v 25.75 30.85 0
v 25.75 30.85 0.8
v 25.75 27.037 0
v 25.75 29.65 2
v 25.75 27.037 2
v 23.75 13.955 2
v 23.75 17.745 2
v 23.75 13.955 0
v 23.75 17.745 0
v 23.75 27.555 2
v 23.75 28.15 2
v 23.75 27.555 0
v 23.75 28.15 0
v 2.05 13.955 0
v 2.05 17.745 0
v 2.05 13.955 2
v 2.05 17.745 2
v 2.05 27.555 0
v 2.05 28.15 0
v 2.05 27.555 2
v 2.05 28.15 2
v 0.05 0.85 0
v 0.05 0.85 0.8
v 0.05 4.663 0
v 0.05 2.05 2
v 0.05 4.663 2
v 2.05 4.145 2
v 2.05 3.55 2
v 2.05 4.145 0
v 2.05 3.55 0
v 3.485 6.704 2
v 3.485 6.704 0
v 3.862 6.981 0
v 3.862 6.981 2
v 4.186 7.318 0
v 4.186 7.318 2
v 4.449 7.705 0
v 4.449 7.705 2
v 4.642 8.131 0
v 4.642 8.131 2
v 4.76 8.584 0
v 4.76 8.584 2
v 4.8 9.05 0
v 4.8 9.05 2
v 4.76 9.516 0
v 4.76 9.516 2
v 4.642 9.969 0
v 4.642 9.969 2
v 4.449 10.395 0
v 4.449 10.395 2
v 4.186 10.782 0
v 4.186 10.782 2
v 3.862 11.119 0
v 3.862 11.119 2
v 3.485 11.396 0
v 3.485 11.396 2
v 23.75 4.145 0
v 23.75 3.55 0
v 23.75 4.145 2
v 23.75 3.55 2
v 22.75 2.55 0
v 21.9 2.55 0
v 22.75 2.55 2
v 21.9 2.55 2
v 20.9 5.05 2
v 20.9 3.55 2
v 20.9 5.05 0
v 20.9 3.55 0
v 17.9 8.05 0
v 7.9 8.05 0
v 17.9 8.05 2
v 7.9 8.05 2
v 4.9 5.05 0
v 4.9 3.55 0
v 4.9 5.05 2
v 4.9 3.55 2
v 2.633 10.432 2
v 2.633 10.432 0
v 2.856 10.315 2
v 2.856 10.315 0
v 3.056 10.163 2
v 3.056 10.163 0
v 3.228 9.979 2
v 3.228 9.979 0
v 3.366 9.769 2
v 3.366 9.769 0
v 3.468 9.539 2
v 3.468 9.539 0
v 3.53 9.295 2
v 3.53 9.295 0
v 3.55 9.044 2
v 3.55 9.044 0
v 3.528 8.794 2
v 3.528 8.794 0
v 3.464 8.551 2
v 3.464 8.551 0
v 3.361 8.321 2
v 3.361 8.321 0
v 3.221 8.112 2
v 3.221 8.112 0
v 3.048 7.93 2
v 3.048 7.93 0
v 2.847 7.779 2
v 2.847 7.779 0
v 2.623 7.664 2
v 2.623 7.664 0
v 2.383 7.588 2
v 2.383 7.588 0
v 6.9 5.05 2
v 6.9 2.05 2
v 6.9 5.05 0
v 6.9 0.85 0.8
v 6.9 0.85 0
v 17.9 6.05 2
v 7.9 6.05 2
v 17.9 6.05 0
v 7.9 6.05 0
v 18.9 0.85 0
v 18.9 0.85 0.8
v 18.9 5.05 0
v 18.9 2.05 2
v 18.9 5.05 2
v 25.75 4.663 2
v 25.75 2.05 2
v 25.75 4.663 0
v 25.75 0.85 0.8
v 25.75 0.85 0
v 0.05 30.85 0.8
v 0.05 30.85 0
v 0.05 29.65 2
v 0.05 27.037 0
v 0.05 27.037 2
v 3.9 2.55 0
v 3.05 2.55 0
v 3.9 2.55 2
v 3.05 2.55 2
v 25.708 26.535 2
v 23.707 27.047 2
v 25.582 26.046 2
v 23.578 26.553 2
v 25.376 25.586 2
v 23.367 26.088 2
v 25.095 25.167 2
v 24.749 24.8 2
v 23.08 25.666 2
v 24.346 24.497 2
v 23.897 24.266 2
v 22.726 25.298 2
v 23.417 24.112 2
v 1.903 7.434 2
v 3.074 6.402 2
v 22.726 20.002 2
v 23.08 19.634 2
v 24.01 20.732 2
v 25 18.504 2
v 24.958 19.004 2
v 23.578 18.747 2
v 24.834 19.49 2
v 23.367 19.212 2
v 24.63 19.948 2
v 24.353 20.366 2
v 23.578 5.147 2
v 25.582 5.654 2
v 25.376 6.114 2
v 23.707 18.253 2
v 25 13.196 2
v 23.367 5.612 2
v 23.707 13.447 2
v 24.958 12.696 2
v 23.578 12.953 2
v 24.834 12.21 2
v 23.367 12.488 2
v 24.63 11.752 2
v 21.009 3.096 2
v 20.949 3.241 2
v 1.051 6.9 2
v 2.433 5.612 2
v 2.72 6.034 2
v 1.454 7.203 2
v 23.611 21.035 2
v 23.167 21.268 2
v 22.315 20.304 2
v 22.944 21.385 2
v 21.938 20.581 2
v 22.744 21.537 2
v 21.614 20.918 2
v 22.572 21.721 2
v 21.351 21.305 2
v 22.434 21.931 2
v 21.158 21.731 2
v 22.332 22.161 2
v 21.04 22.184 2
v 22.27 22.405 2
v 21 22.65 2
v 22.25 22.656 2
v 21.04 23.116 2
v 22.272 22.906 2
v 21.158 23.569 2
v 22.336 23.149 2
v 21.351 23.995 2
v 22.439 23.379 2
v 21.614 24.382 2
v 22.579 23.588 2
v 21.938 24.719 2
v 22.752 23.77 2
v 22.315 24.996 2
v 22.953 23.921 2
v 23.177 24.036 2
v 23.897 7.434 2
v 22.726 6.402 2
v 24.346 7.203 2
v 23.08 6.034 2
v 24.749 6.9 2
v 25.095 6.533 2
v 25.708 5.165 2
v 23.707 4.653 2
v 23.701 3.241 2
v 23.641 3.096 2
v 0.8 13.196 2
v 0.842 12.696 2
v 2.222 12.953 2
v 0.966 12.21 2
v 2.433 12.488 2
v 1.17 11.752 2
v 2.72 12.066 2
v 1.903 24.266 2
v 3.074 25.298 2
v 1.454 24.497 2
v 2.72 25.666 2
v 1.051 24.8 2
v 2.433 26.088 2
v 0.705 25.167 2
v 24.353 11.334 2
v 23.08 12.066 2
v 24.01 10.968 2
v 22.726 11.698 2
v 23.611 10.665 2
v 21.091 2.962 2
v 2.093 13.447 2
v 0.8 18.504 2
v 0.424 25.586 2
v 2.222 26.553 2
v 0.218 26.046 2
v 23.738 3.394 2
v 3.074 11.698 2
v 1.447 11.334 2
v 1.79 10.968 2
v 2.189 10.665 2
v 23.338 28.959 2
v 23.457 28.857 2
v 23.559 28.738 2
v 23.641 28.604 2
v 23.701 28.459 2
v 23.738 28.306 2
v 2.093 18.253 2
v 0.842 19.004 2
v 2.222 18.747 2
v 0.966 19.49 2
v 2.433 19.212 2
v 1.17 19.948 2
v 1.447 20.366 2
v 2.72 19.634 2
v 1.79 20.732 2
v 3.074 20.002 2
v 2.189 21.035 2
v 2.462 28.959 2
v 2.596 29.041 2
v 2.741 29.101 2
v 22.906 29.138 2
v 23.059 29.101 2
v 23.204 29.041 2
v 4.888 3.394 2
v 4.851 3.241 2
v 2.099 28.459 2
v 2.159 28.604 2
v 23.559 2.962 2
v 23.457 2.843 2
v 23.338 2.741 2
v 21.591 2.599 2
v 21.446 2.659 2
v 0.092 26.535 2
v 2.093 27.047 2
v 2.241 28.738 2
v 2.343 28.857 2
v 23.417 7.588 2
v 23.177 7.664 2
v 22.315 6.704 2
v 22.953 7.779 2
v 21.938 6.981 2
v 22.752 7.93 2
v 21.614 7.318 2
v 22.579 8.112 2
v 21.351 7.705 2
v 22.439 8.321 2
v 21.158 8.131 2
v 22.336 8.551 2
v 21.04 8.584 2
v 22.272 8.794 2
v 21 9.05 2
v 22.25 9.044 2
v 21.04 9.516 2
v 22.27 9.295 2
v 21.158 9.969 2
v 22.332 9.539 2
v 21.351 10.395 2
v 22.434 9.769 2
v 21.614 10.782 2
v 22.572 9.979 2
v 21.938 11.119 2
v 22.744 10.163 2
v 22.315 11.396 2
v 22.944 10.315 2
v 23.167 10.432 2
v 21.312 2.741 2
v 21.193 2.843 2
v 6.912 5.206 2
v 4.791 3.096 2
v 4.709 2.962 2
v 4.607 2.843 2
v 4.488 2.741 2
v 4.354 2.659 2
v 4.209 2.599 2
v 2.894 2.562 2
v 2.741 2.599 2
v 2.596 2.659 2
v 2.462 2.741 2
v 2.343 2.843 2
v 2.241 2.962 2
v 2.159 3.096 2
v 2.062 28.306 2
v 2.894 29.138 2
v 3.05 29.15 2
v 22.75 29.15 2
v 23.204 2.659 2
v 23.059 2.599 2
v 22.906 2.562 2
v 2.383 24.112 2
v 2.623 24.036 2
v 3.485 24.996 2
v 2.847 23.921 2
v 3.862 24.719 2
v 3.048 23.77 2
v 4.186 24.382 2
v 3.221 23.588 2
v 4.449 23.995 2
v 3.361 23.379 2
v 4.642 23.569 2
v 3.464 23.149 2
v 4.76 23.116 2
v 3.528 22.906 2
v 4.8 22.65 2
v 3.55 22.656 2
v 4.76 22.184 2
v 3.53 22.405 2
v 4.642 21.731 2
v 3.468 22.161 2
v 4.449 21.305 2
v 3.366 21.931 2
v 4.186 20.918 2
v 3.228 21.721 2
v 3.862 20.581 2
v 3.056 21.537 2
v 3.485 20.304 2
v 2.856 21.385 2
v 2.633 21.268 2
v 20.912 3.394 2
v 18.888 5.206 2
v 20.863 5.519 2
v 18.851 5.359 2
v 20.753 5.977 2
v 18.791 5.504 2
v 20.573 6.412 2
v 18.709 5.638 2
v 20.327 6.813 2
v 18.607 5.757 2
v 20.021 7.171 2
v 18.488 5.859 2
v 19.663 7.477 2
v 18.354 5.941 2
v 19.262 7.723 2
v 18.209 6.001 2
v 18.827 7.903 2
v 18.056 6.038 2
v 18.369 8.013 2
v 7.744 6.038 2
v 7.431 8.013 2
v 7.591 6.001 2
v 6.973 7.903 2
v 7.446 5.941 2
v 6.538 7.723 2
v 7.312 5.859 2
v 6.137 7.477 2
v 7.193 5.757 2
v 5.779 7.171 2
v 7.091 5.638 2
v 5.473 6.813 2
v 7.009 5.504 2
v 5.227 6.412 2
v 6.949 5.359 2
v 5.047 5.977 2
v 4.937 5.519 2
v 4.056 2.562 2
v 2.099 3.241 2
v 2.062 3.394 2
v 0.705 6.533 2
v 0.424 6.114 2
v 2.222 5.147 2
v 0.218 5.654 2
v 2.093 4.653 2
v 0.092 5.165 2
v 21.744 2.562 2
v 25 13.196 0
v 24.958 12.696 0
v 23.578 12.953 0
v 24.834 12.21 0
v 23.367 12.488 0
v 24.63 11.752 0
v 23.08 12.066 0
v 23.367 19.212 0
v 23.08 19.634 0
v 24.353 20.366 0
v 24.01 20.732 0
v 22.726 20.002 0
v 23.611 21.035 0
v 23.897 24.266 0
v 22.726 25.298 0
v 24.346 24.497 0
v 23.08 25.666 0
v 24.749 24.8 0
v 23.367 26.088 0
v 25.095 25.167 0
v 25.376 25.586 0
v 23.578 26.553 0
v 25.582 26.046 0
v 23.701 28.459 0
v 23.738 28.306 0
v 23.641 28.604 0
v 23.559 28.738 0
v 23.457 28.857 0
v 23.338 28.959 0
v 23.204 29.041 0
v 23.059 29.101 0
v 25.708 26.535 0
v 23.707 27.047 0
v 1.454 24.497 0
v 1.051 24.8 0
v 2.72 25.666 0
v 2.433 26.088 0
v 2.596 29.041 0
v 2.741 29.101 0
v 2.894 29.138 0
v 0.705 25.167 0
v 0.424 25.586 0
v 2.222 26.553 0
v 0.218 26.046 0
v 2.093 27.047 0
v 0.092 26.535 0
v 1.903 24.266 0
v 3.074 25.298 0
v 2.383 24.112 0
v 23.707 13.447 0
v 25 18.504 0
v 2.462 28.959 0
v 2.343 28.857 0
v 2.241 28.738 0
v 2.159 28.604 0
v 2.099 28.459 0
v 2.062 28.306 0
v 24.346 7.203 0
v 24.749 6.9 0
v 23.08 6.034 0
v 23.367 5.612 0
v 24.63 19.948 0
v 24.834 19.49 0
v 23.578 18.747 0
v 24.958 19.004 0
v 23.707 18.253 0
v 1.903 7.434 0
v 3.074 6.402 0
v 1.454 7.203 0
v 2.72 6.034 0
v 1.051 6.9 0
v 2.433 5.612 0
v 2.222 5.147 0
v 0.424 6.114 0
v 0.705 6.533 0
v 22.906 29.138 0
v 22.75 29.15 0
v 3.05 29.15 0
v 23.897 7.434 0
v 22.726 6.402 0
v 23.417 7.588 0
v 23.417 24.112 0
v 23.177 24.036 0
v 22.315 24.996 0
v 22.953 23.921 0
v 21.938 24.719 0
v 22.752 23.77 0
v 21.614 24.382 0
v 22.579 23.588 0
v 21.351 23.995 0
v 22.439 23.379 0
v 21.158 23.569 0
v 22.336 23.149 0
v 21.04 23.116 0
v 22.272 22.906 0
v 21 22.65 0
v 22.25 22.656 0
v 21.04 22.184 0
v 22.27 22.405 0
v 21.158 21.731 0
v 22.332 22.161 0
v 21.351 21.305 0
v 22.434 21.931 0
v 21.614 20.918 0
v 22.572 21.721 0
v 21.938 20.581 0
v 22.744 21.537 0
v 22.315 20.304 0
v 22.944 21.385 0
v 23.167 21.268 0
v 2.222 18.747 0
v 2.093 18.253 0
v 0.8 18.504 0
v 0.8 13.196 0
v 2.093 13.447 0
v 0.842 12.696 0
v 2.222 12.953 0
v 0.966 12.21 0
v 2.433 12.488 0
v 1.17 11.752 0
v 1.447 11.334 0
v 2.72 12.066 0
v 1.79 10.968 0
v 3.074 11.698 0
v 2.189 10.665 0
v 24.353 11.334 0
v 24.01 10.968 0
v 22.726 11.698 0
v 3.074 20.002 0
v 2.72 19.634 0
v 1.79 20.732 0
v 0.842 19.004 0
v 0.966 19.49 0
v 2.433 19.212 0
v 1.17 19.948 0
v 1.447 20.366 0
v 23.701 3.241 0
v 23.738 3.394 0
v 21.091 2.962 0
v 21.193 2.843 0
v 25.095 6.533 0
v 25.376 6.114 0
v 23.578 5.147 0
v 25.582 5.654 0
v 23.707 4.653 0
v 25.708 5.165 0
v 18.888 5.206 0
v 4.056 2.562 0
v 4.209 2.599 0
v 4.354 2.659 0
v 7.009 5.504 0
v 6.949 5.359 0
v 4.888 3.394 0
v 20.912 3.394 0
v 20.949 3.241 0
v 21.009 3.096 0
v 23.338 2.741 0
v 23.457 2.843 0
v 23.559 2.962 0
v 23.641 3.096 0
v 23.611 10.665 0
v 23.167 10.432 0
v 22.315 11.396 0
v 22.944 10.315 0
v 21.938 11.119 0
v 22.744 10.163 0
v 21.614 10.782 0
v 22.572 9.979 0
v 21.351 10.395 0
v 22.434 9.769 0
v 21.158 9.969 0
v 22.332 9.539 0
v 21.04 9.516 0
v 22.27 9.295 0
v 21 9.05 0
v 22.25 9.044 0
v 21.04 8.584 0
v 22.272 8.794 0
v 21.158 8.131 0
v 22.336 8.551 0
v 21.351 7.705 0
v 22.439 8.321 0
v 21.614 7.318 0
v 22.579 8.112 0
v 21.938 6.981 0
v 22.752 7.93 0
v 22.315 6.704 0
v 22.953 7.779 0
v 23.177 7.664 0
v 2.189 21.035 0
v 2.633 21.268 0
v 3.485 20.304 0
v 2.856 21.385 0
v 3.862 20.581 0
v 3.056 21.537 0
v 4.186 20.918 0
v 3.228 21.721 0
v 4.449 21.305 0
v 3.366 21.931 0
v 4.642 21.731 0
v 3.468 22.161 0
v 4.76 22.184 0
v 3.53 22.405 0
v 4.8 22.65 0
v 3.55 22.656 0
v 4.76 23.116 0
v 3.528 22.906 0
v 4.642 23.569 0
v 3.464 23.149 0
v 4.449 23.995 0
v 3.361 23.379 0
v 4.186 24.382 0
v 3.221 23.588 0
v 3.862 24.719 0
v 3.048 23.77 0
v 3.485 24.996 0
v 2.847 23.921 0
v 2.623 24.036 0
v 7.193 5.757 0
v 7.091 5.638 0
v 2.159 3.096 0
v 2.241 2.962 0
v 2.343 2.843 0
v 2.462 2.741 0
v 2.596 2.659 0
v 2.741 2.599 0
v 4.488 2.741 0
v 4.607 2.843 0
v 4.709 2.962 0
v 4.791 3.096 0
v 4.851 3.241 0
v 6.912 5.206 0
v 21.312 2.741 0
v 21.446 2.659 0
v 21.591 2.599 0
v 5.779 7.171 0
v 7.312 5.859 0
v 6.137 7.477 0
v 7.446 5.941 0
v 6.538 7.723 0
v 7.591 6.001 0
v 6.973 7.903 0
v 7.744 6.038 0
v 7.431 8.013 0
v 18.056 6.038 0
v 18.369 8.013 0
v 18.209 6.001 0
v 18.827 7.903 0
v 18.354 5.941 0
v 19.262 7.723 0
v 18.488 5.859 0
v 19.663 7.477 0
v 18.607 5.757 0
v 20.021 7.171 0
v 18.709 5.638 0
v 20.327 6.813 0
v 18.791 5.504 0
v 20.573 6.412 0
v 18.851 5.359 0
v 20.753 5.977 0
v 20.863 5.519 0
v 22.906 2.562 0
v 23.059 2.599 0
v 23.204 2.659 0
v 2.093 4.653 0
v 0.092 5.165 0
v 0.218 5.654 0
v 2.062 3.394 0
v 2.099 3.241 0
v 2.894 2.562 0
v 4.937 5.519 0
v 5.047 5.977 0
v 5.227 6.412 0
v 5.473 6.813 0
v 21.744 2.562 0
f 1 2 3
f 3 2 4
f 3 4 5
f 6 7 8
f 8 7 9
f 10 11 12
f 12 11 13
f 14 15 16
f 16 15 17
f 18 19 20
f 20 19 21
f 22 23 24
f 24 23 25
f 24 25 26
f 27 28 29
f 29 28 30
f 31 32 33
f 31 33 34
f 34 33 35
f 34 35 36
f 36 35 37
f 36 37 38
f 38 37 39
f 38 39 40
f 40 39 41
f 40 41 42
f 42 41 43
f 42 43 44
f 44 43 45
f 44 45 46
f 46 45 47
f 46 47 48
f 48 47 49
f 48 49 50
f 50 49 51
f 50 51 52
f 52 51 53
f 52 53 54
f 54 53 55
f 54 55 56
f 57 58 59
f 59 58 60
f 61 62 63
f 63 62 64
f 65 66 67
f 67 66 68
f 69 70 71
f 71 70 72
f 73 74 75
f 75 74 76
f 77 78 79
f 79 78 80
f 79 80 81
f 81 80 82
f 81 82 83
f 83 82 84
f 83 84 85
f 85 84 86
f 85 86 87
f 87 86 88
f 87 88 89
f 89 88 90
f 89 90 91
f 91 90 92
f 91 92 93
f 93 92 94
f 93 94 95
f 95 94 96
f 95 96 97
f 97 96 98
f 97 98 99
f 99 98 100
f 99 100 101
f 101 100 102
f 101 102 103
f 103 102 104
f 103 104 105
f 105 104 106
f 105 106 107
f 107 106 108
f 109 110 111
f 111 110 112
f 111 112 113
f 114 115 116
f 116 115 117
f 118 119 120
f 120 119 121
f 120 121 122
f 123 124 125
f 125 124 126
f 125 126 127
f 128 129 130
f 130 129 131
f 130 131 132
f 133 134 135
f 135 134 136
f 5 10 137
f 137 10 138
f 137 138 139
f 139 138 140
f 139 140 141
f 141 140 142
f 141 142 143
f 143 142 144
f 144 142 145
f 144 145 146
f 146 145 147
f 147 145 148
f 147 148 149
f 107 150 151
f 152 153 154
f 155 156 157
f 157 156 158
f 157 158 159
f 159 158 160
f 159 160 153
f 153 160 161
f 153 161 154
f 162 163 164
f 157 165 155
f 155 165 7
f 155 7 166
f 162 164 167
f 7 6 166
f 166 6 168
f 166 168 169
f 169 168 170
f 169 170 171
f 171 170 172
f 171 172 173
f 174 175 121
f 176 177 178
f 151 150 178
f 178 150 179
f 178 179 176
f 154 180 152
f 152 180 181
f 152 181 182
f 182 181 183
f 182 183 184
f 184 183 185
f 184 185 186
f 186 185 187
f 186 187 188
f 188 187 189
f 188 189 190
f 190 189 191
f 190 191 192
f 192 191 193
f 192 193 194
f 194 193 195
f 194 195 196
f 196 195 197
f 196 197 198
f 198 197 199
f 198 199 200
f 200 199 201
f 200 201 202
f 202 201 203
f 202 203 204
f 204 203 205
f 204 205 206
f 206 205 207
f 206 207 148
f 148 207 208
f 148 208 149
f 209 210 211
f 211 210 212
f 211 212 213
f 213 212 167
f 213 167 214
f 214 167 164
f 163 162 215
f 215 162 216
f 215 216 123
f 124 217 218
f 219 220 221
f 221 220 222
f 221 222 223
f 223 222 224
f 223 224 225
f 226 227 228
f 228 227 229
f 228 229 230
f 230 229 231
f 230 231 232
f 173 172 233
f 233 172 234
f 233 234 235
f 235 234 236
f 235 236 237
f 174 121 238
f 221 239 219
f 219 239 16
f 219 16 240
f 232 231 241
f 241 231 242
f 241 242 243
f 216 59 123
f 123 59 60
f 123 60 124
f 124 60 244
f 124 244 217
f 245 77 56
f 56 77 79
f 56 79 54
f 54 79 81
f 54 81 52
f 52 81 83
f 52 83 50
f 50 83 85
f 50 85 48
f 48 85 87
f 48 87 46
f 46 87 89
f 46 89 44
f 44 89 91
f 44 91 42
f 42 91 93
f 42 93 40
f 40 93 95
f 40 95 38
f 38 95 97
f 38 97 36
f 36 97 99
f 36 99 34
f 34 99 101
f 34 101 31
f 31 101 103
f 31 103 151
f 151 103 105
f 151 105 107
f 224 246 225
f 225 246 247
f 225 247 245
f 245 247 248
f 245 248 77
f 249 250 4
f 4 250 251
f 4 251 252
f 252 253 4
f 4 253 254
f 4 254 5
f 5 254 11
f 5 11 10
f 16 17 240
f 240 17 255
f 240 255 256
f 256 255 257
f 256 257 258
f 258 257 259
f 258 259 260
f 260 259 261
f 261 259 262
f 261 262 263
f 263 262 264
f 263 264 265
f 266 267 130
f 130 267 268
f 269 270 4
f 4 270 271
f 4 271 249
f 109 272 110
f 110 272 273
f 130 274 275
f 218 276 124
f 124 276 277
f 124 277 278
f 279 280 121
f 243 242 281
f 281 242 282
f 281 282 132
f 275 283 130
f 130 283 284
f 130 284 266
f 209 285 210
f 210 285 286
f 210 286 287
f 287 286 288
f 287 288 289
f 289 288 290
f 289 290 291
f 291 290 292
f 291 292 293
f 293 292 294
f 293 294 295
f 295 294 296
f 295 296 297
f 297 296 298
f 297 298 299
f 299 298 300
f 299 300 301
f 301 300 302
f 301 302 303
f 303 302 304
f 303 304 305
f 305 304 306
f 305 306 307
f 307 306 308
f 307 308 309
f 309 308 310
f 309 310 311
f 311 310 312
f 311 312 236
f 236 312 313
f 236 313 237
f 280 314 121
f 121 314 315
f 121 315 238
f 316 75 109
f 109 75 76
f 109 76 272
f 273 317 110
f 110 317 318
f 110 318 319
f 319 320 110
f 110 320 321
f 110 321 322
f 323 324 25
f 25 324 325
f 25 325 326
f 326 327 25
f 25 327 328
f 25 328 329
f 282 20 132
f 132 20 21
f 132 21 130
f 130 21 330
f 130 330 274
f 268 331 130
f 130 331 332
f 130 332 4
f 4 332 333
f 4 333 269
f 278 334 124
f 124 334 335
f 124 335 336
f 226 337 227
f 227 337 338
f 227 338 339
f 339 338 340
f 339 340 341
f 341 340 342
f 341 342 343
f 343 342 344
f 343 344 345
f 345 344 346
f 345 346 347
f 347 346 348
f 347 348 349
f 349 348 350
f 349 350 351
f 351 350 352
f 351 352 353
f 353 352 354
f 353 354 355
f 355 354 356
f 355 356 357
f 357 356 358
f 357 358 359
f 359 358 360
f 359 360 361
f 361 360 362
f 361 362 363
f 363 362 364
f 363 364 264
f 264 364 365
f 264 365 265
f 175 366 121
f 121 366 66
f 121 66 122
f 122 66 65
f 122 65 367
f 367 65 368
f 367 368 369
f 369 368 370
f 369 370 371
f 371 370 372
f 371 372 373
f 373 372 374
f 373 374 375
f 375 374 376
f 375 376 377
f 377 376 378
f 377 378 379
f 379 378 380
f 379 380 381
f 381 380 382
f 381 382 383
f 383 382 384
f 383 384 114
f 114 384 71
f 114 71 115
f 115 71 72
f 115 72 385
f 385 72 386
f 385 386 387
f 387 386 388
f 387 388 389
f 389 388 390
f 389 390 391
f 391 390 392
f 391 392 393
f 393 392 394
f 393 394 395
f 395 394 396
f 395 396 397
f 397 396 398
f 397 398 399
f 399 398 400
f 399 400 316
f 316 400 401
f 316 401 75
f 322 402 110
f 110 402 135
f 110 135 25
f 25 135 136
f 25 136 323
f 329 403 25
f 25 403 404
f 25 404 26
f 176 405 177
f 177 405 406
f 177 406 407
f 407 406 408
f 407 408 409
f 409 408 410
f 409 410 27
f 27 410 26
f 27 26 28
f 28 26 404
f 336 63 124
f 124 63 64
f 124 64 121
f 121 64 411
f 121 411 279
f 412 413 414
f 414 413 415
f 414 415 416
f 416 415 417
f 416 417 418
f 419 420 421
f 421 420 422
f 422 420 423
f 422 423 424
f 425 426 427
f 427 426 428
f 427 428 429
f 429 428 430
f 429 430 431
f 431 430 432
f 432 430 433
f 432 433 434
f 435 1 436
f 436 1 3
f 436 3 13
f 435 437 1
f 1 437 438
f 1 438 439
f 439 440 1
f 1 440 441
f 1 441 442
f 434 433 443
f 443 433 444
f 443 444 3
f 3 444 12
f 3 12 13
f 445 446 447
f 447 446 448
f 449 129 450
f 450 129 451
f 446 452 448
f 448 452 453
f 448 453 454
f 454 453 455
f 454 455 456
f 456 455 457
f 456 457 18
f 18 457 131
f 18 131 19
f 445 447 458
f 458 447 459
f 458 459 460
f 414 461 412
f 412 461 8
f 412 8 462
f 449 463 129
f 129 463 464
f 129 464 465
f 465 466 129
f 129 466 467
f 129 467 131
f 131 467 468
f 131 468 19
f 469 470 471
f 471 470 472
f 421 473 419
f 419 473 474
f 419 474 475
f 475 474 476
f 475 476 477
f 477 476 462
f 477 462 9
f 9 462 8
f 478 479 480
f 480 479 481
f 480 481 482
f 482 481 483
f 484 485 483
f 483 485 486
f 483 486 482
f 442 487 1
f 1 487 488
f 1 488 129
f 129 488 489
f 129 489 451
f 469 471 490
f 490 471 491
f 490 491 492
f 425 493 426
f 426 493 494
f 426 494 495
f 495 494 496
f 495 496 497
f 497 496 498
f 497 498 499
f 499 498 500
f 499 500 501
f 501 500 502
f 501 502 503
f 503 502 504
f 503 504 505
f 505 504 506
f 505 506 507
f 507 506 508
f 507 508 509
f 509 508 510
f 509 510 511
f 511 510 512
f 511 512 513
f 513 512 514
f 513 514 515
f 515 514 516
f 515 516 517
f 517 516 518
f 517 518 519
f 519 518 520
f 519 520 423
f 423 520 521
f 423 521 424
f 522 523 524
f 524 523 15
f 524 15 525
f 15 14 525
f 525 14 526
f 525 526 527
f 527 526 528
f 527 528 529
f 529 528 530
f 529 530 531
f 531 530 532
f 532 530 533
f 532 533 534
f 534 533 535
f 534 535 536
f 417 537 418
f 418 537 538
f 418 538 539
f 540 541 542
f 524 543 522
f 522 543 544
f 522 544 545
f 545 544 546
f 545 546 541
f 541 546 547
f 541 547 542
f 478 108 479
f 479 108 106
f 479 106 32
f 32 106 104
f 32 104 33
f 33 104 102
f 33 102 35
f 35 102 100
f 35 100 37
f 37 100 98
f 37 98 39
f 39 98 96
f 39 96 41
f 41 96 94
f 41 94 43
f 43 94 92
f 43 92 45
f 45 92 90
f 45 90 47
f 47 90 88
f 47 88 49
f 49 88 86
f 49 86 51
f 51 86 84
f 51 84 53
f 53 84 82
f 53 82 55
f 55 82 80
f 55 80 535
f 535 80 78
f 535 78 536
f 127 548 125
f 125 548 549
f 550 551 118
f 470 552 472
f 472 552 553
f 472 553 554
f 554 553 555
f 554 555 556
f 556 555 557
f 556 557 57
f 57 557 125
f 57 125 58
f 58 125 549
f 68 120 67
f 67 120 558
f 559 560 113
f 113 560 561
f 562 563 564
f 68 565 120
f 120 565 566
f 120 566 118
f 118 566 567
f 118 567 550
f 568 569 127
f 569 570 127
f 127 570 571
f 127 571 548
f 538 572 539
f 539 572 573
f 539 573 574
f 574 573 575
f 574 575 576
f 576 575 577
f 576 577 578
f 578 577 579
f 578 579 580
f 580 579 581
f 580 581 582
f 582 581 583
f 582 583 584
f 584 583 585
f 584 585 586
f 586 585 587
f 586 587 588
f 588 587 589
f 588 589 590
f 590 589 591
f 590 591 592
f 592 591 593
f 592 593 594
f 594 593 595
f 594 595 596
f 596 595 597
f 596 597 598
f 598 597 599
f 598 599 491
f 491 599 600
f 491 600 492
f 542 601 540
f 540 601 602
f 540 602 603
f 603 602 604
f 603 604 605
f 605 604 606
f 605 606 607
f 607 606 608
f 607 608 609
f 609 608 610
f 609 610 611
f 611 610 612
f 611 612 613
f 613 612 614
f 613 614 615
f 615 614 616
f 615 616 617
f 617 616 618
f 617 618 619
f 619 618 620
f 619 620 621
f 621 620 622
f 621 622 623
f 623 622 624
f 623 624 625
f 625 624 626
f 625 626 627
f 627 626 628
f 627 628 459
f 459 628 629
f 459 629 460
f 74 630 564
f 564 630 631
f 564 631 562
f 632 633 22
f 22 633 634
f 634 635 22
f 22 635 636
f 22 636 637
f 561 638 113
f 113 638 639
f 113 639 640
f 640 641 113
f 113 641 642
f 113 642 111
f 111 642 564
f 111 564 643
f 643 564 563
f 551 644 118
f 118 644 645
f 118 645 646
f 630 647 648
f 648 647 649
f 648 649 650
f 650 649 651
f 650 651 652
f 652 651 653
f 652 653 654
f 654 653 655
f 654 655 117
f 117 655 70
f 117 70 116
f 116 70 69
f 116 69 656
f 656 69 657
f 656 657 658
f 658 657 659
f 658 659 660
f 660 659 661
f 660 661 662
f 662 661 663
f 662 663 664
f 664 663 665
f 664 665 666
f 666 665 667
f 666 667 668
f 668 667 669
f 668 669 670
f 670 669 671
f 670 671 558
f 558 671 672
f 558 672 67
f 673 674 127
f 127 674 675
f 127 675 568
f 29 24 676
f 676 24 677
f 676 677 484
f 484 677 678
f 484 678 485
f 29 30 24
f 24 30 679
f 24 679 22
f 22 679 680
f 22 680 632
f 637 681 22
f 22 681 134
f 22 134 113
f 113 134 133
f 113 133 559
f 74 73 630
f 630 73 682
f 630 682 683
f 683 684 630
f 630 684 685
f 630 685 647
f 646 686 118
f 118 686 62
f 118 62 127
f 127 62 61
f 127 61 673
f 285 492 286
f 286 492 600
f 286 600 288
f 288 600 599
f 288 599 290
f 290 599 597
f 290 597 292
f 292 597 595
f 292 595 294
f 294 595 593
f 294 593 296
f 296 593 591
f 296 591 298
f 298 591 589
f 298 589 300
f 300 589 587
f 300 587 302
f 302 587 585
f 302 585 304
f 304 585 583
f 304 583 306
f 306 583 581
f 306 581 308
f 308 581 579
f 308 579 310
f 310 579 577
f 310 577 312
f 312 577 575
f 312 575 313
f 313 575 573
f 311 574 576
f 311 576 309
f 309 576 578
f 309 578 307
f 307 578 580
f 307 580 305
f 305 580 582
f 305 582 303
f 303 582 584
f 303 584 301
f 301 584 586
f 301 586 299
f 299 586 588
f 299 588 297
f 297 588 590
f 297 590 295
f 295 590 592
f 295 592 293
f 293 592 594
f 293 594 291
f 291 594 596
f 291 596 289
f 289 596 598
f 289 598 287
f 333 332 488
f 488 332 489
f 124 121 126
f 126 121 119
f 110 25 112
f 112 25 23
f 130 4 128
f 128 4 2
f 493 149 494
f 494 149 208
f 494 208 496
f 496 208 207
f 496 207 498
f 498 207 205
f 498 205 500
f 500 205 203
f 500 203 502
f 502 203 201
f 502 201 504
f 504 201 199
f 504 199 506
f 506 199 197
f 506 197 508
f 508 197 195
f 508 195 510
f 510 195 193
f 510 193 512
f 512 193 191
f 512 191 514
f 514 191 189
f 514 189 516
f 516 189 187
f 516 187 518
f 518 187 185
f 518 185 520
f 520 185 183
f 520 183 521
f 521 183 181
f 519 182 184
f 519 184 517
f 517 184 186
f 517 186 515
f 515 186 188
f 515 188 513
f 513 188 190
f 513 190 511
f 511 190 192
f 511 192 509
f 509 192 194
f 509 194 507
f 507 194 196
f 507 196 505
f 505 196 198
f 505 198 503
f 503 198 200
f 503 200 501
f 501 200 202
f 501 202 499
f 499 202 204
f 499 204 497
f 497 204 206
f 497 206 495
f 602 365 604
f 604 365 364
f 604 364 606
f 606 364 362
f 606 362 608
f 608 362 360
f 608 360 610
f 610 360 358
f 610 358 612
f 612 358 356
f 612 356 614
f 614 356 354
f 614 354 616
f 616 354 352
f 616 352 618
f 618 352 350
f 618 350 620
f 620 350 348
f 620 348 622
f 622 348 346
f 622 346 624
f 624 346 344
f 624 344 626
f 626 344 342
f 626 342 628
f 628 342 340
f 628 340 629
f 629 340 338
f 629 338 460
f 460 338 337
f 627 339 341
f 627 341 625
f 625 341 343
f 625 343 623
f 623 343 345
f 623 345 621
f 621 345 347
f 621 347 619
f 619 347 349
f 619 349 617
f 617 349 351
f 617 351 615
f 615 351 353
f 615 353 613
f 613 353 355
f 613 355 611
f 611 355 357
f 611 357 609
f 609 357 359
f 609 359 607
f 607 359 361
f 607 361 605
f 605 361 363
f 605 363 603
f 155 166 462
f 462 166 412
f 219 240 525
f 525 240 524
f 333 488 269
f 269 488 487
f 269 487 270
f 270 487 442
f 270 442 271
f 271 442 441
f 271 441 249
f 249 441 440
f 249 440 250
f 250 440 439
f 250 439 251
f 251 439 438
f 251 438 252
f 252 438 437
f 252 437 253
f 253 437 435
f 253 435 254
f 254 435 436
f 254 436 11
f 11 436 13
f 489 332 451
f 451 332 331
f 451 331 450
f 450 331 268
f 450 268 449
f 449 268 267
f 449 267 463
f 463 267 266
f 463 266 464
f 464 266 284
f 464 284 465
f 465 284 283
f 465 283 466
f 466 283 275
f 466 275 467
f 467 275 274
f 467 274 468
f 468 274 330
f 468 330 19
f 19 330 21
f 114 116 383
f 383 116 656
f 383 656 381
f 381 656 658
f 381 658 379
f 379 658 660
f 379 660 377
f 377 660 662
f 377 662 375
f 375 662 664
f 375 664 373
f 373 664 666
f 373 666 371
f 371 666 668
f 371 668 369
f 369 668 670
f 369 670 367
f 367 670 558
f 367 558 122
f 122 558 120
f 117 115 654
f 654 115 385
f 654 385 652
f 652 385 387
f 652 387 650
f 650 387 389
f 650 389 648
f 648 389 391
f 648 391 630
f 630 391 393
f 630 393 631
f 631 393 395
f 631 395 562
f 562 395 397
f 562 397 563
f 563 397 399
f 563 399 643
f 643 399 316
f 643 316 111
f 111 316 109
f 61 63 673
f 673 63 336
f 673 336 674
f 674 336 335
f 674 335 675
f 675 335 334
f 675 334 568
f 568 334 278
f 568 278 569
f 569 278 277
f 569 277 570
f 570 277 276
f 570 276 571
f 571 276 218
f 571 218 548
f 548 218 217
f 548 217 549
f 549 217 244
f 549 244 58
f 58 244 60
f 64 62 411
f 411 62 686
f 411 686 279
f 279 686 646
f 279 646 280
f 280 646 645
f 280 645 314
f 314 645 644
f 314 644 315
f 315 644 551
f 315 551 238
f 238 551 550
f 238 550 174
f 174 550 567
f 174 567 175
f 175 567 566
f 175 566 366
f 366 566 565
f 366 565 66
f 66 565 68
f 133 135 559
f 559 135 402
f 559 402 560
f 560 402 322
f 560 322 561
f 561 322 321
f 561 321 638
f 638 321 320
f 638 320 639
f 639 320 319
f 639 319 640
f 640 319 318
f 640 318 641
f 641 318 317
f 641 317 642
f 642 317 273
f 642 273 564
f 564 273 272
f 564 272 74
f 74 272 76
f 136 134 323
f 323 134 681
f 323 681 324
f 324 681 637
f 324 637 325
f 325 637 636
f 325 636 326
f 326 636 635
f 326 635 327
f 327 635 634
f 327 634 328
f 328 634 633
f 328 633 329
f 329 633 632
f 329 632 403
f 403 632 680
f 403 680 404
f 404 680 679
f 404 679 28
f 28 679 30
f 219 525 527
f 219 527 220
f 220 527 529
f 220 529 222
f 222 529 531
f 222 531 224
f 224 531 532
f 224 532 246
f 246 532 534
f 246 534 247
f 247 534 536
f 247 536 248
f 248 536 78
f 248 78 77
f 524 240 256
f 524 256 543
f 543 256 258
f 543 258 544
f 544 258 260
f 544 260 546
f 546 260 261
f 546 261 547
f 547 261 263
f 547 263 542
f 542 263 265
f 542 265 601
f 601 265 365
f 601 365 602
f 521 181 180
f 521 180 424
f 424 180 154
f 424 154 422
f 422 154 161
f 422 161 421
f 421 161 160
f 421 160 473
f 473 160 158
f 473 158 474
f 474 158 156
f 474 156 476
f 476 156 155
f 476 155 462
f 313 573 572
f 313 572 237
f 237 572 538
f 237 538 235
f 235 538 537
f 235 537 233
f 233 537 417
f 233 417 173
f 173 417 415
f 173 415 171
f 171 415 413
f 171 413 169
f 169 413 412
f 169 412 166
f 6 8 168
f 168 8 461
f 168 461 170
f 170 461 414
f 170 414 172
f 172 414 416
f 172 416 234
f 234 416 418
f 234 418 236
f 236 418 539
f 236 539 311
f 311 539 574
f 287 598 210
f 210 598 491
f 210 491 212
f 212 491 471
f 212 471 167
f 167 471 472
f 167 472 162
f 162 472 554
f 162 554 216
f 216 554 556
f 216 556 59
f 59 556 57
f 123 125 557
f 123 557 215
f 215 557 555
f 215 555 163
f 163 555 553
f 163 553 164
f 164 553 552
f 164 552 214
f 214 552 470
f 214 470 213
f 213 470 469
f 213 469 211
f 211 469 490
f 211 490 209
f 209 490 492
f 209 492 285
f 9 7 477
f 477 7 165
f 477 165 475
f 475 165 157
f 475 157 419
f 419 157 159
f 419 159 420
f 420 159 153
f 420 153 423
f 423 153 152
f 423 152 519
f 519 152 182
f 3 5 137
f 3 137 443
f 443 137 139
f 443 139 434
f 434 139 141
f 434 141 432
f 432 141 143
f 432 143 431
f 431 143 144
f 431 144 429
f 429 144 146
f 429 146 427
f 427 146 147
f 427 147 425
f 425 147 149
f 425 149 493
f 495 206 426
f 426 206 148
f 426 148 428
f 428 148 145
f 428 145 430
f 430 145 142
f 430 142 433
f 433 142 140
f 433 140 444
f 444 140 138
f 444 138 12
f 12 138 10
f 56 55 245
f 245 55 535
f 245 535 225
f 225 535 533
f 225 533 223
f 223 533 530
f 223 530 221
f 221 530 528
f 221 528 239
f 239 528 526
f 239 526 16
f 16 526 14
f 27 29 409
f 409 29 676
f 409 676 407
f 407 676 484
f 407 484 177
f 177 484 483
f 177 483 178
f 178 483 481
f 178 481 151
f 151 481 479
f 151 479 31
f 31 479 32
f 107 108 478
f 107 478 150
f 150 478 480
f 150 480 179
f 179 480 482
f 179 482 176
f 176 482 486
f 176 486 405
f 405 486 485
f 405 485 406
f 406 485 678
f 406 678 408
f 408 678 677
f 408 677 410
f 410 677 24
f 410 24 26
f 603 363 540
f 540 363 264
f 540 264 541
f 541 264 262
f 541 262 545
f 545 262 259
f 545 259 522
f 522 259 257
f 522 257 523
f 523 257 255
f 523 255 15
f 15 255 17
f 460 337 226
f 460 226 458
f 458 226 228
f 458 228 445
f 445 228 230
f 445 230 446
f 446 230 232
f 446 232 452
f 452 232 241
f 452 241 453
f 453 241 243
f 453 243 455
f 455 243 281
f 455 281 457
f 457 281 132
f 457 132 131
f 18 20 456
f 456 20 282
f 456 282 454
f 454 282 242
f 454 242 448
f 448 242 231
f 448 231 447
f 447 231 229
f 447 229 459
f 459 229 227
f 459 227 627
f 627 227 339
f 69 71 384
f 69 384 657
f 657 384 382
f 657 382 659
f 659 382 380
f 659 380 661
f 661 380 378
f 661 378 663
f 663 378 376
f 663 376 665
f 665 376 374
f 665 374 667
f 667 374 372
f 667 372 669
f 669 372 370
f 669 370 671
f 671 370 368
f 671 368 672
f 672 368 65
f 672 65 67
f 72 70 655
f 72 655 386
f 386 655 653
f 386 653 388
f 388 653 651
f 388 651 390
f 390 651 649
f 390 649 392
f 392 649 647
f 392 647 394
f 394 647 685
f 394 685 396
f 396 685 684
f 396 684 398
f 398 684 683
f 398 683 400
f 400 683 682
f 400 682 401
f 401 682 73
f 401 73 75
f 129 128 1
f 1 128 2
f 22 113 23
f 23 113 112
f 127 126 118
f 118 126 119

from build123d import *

# Parameters (mm, degrees)
BOSS_EXTRUDE1_DEPTH  = 2
SKETCH3_W            = 21.7
SKETCH3_H            = 0.5
BOSS_EXTRUDE2_DEPTH  = 2
SKETCH2_W            = 2
SKETCH2_H            = 3
CUT_EXTRUDE1_DEPTH   = 2
CHAMFER1_SIZE        = 2
CHAMFER3_SIZE        = 2
BOSS_EXTRUDE3_DEPTH  = 2
SKETCH5_W            = 2
SKETCH5_H            = 3
CUT_EXTRUDE2_DEPTH   = 10
SKETCH8_W            = 0.75
SKETCH8_H            = 10.6
CUT_EXTRUDE5_DEPTH   = 41.850764987
FILLET2_R            = 1
FILLET3_R            = 3
FILLET4_R            = 3
CUT_EXTRUDE4_START   = 30.85
CUT_EXTRUDE4_DEPTH   = 0.8
CUT_EXTRUDE4_START_2 = 0.05
CUT_EXTRUDE4_2_DEPTH = 0.8


# Read off the part's stored shape, not the designer's step: Cut-Extrude4
with BuildPart() as part:
    # Sketch1 → Boss-Extrude1 (new body)
    with BuildSketch(Plane.XY):
        with BuildLine():
            ThreePointArc((2.05, 7.55), (3.55, 9.05), (2.05, 10.55))
            Line((2.05, 10.55), (0.05, 10.55))
            Line((0.05, 10.55), (0.05, 31.65))
            Line((0.05, 31.65), (25.75, 31.65))
            Line((25.75, 31.65), (25.75, 0.05))
            Line((25.75, 0.05), (18.9, 0.05))
            Line((18.9, 0.05), (18.9, 6.05))
            Line((18.9, 6.05), (6.9, 6.05))
            Line((6.9, 6.05), (6.9, 0.05))
            Line((6.9, 0.05), (0.05, 0.05))
            Line((0.05, 0.05), (0.05, 7.55))
            Line((0.05, 7.55), (2.05, 7.55))
        make_face()
        with BuildLine():
            Line((2.05, 2.55), (2.05, 6.3))
            ThreePointArc((2.05, 6.3), (4.8, 9.05), (2.05, 11.8))
            Line((2.05, 11.8), (2.05, 29.65))
            Line((2.05, 29.65), (23.75, 29.65))
            Line((23.75, 29.65), (23.75, 2.55))
            Line((23.75, 2.55), (20.9, 2.55))
            Line((20.9, 2.55), (20.9, 8.05))
            Line((20.9, 8.05), (4.9, 8.05))
            Line((4.9, 8.05), (4.9, 2.55))
            Line((4.9, 2.55), (2.05, 2.55))
        make_face(mode=Mode.SUBTRACT)
    boss_extrude1 = extrude(amount=BOSS_EXTRUDE1_DEPTH)

    # Mirror8: Boss-Extrude1 across plane
    add(boss_extrude1.mirror(Plane.ZY.offset(-12.9)))

    # Sketch3 → Boss-Extrude2 (add)
    with BuildSketch(Plane.XY.offset(2)):
        with Locations((12.9, 29.4)):
            Rectangle(SKETCH3_W, SKETCH3_H)
    extrude(amount=-BOSS_EXTRUDE2_DEPTH)

    # Sketch2 → Cut-Extrude1 (cut)
    with BuildSketch(Plane.XY.offset(2)):
        with Locations((1.05, 9.05)):
            Rectangle(SKETCH2_W, SKETCH2_H)
        with Locations((24.75, 9.05)):
            Rectangle(SKETCH2_W, SKETCH2_H)
    extrude(amount=-CUT_EXTRUDE1_DEPTH, mode=Mode.SUBTRACT)

    # Chamfer1
    chamfer1_edges = [part.edges().sort_by_distance(p)[0] for p in [
        (22.325, 0.05, 2),
        (3.475, 0.05, 2),
    ]]
    chamfer(chamfer1_edges, length=CHAMFER1_SIZE - 0.0001)  # a hair under: the kernel refuses the full size

    # Chamfer3
    chamfer3_edges = [part.edges().sort_by_distance(p)[0] for p in [
        (12.9, 31.65, 2),
    ]]
    chamfer(chamfer3_edges, length=CHAMFER3_SIZE - 0.0001)  # a hair under: the kernel refuses the full size

    # Sketch4 → Boss-Extrude3 (add)
    with BuildSketch(Plane.XY.offset(2)):
        with BuildLine():
            ThreePointArc((2.05, 19.9), (4.8, 22.65), (2.05, 25.4))
            Line((2.05, 25.4), (2.05, 24.15))
            ThreePointArc((2.05, 24.15), (3.55, 22.65), (2.05, 21.15))
            Line((2.05, 21.15), (2.05, 19.9))
        make_face()
        with BuildLine():
            Line((23.75, 24.15), (23.75, 25.4))
            ThreePointArc((23.75, 25.4), (21, 22.65), (23.75, 19.9))
            Line((23.75, 19.9), (23.75, 21.15))
            ThreePointArc((23.75, 21.15), (22.25, 22.65), (23.75, 24.15))
        make_face()
    extrude(amount=-BOSS_EXTRUDE3_DEPTH)

    # Sketch5 → Cut-Extrude2 (cut)
    with BuildSketch(Plane.XY.offset(2)):
        with Locations((1.05, 22.65)):
            Rectangle(SKETCH5_W, SKETCH5_H)
        with Locations((24.75, 22.65)):
            Rectangle(SKETCH5_W, SKETCH5_H)
    extrude(amount=-CUT_EXTRUDE2_DEPTH, mode=Mode.SUBTRACT)

    # Sketch8 → Cut-Extrude5 (cut, through all)
    with BuildSketch(Plane.XY.offset(2)):
        with Locations((25.375, 15.85)):
            Rectangle(SKETCH8_W, SKETCH8_H)
        with Locations((0.425, 15.85)):
            Rectangle(SKETCH8_W, SKETCH8_H)
    extrude(amount=-CUT_EXTRUDE5_DEPTH, mode=Mode.SUBTRACT)

    # Fillet2
    fillet2_edges = [part.edges().sort_by_distance(p)[0] for p in [
        (2.05, 29.15, 1),
        (23.75, 29.15, 1),
        (2.05, 2.55, 1),
        (4.9, 2.55, 1),
        (20.9, 2.55, 1),
        (23.75, 2.55, 1),
        (18.9, 6.05, 1),
        (6.9, 6.05, 1),
    ]]
    fillet(fillet2_edges, radius=FILLET2_R)

    # Fillet3
    fillet3_edges = [part.edges().sort_by_distance(p)[0] for p in [
        (23.75, 6.3, 1),
        (23.75, 11.8, 1),
        (25.75, 7.55, 1),
        (23.75, 25.4, 1),
        (23.75, 19.9, 1),
        (25.75, 24.15, 1),
        (2.05, 11.8, 1),
        (2.05, 6.3, 1),
        (0.05, 7.55, 1),
        (2.05, 19.9, 1),
        (2.05, 25.4, 1),
        (0.05, 24.15, 1),
        (0.8, 10.55, 1),
        (0.8, 21.15, 1),
        (25, 21.15, 1),
        (25, 10.55, 1),
    ]]
    fillet(fillet3_edges, radius=FILLET3_R)

    # Fillet4
    fillet4_edges = [part.edges().sort_by_distance(p)[0] for p in [
        (4.9, 8.05, 1),
        (20.9, 8.05, 1),
    ]]
    fillet(fillet4_edges, radius=FILLET4_R)

    # Cut-Extrude4 outline → Cut-Extrude4 (cut)
    with BuildSketch(Plane(origin=(0, 0, 0), x_dir=(1, 0, 0), z_dir=(0, 1, 0)).offset(CUT_EXTRUDE4_START)):
        Polygon((-1, 1), (-1, -2), (0.05, -2), (25.75, -2), (27, -2), (27, 1), align=None)
    extrude(amount=CUT_EXTRUDE4_DEPTH, mode=Mode.SUBTRACT)

    # Cut-Extrude4 2 outline → Cut-Extrude4 2 (cut)
    with BuildSketch(Plane(origin=(0, 0, 0), x_dir=(1, 0, 0), z_dir=(0, 1, 0)).offset(CUT_EXTRUDE4_START_2)):
        Polygon((6.9, -2), (6.9, 1), (-1, 1), (-1, -2), (0.05, -2), align=None)
        Polygon((18.9, 1), (18.9, -2), (25.75, -2), (27, -2), (27, 1), align=None)
    extrude(amount=CUT_EXTRUDE4_2_DEPTH, mode=Mode.SUBTRACT)


solid = part.part
